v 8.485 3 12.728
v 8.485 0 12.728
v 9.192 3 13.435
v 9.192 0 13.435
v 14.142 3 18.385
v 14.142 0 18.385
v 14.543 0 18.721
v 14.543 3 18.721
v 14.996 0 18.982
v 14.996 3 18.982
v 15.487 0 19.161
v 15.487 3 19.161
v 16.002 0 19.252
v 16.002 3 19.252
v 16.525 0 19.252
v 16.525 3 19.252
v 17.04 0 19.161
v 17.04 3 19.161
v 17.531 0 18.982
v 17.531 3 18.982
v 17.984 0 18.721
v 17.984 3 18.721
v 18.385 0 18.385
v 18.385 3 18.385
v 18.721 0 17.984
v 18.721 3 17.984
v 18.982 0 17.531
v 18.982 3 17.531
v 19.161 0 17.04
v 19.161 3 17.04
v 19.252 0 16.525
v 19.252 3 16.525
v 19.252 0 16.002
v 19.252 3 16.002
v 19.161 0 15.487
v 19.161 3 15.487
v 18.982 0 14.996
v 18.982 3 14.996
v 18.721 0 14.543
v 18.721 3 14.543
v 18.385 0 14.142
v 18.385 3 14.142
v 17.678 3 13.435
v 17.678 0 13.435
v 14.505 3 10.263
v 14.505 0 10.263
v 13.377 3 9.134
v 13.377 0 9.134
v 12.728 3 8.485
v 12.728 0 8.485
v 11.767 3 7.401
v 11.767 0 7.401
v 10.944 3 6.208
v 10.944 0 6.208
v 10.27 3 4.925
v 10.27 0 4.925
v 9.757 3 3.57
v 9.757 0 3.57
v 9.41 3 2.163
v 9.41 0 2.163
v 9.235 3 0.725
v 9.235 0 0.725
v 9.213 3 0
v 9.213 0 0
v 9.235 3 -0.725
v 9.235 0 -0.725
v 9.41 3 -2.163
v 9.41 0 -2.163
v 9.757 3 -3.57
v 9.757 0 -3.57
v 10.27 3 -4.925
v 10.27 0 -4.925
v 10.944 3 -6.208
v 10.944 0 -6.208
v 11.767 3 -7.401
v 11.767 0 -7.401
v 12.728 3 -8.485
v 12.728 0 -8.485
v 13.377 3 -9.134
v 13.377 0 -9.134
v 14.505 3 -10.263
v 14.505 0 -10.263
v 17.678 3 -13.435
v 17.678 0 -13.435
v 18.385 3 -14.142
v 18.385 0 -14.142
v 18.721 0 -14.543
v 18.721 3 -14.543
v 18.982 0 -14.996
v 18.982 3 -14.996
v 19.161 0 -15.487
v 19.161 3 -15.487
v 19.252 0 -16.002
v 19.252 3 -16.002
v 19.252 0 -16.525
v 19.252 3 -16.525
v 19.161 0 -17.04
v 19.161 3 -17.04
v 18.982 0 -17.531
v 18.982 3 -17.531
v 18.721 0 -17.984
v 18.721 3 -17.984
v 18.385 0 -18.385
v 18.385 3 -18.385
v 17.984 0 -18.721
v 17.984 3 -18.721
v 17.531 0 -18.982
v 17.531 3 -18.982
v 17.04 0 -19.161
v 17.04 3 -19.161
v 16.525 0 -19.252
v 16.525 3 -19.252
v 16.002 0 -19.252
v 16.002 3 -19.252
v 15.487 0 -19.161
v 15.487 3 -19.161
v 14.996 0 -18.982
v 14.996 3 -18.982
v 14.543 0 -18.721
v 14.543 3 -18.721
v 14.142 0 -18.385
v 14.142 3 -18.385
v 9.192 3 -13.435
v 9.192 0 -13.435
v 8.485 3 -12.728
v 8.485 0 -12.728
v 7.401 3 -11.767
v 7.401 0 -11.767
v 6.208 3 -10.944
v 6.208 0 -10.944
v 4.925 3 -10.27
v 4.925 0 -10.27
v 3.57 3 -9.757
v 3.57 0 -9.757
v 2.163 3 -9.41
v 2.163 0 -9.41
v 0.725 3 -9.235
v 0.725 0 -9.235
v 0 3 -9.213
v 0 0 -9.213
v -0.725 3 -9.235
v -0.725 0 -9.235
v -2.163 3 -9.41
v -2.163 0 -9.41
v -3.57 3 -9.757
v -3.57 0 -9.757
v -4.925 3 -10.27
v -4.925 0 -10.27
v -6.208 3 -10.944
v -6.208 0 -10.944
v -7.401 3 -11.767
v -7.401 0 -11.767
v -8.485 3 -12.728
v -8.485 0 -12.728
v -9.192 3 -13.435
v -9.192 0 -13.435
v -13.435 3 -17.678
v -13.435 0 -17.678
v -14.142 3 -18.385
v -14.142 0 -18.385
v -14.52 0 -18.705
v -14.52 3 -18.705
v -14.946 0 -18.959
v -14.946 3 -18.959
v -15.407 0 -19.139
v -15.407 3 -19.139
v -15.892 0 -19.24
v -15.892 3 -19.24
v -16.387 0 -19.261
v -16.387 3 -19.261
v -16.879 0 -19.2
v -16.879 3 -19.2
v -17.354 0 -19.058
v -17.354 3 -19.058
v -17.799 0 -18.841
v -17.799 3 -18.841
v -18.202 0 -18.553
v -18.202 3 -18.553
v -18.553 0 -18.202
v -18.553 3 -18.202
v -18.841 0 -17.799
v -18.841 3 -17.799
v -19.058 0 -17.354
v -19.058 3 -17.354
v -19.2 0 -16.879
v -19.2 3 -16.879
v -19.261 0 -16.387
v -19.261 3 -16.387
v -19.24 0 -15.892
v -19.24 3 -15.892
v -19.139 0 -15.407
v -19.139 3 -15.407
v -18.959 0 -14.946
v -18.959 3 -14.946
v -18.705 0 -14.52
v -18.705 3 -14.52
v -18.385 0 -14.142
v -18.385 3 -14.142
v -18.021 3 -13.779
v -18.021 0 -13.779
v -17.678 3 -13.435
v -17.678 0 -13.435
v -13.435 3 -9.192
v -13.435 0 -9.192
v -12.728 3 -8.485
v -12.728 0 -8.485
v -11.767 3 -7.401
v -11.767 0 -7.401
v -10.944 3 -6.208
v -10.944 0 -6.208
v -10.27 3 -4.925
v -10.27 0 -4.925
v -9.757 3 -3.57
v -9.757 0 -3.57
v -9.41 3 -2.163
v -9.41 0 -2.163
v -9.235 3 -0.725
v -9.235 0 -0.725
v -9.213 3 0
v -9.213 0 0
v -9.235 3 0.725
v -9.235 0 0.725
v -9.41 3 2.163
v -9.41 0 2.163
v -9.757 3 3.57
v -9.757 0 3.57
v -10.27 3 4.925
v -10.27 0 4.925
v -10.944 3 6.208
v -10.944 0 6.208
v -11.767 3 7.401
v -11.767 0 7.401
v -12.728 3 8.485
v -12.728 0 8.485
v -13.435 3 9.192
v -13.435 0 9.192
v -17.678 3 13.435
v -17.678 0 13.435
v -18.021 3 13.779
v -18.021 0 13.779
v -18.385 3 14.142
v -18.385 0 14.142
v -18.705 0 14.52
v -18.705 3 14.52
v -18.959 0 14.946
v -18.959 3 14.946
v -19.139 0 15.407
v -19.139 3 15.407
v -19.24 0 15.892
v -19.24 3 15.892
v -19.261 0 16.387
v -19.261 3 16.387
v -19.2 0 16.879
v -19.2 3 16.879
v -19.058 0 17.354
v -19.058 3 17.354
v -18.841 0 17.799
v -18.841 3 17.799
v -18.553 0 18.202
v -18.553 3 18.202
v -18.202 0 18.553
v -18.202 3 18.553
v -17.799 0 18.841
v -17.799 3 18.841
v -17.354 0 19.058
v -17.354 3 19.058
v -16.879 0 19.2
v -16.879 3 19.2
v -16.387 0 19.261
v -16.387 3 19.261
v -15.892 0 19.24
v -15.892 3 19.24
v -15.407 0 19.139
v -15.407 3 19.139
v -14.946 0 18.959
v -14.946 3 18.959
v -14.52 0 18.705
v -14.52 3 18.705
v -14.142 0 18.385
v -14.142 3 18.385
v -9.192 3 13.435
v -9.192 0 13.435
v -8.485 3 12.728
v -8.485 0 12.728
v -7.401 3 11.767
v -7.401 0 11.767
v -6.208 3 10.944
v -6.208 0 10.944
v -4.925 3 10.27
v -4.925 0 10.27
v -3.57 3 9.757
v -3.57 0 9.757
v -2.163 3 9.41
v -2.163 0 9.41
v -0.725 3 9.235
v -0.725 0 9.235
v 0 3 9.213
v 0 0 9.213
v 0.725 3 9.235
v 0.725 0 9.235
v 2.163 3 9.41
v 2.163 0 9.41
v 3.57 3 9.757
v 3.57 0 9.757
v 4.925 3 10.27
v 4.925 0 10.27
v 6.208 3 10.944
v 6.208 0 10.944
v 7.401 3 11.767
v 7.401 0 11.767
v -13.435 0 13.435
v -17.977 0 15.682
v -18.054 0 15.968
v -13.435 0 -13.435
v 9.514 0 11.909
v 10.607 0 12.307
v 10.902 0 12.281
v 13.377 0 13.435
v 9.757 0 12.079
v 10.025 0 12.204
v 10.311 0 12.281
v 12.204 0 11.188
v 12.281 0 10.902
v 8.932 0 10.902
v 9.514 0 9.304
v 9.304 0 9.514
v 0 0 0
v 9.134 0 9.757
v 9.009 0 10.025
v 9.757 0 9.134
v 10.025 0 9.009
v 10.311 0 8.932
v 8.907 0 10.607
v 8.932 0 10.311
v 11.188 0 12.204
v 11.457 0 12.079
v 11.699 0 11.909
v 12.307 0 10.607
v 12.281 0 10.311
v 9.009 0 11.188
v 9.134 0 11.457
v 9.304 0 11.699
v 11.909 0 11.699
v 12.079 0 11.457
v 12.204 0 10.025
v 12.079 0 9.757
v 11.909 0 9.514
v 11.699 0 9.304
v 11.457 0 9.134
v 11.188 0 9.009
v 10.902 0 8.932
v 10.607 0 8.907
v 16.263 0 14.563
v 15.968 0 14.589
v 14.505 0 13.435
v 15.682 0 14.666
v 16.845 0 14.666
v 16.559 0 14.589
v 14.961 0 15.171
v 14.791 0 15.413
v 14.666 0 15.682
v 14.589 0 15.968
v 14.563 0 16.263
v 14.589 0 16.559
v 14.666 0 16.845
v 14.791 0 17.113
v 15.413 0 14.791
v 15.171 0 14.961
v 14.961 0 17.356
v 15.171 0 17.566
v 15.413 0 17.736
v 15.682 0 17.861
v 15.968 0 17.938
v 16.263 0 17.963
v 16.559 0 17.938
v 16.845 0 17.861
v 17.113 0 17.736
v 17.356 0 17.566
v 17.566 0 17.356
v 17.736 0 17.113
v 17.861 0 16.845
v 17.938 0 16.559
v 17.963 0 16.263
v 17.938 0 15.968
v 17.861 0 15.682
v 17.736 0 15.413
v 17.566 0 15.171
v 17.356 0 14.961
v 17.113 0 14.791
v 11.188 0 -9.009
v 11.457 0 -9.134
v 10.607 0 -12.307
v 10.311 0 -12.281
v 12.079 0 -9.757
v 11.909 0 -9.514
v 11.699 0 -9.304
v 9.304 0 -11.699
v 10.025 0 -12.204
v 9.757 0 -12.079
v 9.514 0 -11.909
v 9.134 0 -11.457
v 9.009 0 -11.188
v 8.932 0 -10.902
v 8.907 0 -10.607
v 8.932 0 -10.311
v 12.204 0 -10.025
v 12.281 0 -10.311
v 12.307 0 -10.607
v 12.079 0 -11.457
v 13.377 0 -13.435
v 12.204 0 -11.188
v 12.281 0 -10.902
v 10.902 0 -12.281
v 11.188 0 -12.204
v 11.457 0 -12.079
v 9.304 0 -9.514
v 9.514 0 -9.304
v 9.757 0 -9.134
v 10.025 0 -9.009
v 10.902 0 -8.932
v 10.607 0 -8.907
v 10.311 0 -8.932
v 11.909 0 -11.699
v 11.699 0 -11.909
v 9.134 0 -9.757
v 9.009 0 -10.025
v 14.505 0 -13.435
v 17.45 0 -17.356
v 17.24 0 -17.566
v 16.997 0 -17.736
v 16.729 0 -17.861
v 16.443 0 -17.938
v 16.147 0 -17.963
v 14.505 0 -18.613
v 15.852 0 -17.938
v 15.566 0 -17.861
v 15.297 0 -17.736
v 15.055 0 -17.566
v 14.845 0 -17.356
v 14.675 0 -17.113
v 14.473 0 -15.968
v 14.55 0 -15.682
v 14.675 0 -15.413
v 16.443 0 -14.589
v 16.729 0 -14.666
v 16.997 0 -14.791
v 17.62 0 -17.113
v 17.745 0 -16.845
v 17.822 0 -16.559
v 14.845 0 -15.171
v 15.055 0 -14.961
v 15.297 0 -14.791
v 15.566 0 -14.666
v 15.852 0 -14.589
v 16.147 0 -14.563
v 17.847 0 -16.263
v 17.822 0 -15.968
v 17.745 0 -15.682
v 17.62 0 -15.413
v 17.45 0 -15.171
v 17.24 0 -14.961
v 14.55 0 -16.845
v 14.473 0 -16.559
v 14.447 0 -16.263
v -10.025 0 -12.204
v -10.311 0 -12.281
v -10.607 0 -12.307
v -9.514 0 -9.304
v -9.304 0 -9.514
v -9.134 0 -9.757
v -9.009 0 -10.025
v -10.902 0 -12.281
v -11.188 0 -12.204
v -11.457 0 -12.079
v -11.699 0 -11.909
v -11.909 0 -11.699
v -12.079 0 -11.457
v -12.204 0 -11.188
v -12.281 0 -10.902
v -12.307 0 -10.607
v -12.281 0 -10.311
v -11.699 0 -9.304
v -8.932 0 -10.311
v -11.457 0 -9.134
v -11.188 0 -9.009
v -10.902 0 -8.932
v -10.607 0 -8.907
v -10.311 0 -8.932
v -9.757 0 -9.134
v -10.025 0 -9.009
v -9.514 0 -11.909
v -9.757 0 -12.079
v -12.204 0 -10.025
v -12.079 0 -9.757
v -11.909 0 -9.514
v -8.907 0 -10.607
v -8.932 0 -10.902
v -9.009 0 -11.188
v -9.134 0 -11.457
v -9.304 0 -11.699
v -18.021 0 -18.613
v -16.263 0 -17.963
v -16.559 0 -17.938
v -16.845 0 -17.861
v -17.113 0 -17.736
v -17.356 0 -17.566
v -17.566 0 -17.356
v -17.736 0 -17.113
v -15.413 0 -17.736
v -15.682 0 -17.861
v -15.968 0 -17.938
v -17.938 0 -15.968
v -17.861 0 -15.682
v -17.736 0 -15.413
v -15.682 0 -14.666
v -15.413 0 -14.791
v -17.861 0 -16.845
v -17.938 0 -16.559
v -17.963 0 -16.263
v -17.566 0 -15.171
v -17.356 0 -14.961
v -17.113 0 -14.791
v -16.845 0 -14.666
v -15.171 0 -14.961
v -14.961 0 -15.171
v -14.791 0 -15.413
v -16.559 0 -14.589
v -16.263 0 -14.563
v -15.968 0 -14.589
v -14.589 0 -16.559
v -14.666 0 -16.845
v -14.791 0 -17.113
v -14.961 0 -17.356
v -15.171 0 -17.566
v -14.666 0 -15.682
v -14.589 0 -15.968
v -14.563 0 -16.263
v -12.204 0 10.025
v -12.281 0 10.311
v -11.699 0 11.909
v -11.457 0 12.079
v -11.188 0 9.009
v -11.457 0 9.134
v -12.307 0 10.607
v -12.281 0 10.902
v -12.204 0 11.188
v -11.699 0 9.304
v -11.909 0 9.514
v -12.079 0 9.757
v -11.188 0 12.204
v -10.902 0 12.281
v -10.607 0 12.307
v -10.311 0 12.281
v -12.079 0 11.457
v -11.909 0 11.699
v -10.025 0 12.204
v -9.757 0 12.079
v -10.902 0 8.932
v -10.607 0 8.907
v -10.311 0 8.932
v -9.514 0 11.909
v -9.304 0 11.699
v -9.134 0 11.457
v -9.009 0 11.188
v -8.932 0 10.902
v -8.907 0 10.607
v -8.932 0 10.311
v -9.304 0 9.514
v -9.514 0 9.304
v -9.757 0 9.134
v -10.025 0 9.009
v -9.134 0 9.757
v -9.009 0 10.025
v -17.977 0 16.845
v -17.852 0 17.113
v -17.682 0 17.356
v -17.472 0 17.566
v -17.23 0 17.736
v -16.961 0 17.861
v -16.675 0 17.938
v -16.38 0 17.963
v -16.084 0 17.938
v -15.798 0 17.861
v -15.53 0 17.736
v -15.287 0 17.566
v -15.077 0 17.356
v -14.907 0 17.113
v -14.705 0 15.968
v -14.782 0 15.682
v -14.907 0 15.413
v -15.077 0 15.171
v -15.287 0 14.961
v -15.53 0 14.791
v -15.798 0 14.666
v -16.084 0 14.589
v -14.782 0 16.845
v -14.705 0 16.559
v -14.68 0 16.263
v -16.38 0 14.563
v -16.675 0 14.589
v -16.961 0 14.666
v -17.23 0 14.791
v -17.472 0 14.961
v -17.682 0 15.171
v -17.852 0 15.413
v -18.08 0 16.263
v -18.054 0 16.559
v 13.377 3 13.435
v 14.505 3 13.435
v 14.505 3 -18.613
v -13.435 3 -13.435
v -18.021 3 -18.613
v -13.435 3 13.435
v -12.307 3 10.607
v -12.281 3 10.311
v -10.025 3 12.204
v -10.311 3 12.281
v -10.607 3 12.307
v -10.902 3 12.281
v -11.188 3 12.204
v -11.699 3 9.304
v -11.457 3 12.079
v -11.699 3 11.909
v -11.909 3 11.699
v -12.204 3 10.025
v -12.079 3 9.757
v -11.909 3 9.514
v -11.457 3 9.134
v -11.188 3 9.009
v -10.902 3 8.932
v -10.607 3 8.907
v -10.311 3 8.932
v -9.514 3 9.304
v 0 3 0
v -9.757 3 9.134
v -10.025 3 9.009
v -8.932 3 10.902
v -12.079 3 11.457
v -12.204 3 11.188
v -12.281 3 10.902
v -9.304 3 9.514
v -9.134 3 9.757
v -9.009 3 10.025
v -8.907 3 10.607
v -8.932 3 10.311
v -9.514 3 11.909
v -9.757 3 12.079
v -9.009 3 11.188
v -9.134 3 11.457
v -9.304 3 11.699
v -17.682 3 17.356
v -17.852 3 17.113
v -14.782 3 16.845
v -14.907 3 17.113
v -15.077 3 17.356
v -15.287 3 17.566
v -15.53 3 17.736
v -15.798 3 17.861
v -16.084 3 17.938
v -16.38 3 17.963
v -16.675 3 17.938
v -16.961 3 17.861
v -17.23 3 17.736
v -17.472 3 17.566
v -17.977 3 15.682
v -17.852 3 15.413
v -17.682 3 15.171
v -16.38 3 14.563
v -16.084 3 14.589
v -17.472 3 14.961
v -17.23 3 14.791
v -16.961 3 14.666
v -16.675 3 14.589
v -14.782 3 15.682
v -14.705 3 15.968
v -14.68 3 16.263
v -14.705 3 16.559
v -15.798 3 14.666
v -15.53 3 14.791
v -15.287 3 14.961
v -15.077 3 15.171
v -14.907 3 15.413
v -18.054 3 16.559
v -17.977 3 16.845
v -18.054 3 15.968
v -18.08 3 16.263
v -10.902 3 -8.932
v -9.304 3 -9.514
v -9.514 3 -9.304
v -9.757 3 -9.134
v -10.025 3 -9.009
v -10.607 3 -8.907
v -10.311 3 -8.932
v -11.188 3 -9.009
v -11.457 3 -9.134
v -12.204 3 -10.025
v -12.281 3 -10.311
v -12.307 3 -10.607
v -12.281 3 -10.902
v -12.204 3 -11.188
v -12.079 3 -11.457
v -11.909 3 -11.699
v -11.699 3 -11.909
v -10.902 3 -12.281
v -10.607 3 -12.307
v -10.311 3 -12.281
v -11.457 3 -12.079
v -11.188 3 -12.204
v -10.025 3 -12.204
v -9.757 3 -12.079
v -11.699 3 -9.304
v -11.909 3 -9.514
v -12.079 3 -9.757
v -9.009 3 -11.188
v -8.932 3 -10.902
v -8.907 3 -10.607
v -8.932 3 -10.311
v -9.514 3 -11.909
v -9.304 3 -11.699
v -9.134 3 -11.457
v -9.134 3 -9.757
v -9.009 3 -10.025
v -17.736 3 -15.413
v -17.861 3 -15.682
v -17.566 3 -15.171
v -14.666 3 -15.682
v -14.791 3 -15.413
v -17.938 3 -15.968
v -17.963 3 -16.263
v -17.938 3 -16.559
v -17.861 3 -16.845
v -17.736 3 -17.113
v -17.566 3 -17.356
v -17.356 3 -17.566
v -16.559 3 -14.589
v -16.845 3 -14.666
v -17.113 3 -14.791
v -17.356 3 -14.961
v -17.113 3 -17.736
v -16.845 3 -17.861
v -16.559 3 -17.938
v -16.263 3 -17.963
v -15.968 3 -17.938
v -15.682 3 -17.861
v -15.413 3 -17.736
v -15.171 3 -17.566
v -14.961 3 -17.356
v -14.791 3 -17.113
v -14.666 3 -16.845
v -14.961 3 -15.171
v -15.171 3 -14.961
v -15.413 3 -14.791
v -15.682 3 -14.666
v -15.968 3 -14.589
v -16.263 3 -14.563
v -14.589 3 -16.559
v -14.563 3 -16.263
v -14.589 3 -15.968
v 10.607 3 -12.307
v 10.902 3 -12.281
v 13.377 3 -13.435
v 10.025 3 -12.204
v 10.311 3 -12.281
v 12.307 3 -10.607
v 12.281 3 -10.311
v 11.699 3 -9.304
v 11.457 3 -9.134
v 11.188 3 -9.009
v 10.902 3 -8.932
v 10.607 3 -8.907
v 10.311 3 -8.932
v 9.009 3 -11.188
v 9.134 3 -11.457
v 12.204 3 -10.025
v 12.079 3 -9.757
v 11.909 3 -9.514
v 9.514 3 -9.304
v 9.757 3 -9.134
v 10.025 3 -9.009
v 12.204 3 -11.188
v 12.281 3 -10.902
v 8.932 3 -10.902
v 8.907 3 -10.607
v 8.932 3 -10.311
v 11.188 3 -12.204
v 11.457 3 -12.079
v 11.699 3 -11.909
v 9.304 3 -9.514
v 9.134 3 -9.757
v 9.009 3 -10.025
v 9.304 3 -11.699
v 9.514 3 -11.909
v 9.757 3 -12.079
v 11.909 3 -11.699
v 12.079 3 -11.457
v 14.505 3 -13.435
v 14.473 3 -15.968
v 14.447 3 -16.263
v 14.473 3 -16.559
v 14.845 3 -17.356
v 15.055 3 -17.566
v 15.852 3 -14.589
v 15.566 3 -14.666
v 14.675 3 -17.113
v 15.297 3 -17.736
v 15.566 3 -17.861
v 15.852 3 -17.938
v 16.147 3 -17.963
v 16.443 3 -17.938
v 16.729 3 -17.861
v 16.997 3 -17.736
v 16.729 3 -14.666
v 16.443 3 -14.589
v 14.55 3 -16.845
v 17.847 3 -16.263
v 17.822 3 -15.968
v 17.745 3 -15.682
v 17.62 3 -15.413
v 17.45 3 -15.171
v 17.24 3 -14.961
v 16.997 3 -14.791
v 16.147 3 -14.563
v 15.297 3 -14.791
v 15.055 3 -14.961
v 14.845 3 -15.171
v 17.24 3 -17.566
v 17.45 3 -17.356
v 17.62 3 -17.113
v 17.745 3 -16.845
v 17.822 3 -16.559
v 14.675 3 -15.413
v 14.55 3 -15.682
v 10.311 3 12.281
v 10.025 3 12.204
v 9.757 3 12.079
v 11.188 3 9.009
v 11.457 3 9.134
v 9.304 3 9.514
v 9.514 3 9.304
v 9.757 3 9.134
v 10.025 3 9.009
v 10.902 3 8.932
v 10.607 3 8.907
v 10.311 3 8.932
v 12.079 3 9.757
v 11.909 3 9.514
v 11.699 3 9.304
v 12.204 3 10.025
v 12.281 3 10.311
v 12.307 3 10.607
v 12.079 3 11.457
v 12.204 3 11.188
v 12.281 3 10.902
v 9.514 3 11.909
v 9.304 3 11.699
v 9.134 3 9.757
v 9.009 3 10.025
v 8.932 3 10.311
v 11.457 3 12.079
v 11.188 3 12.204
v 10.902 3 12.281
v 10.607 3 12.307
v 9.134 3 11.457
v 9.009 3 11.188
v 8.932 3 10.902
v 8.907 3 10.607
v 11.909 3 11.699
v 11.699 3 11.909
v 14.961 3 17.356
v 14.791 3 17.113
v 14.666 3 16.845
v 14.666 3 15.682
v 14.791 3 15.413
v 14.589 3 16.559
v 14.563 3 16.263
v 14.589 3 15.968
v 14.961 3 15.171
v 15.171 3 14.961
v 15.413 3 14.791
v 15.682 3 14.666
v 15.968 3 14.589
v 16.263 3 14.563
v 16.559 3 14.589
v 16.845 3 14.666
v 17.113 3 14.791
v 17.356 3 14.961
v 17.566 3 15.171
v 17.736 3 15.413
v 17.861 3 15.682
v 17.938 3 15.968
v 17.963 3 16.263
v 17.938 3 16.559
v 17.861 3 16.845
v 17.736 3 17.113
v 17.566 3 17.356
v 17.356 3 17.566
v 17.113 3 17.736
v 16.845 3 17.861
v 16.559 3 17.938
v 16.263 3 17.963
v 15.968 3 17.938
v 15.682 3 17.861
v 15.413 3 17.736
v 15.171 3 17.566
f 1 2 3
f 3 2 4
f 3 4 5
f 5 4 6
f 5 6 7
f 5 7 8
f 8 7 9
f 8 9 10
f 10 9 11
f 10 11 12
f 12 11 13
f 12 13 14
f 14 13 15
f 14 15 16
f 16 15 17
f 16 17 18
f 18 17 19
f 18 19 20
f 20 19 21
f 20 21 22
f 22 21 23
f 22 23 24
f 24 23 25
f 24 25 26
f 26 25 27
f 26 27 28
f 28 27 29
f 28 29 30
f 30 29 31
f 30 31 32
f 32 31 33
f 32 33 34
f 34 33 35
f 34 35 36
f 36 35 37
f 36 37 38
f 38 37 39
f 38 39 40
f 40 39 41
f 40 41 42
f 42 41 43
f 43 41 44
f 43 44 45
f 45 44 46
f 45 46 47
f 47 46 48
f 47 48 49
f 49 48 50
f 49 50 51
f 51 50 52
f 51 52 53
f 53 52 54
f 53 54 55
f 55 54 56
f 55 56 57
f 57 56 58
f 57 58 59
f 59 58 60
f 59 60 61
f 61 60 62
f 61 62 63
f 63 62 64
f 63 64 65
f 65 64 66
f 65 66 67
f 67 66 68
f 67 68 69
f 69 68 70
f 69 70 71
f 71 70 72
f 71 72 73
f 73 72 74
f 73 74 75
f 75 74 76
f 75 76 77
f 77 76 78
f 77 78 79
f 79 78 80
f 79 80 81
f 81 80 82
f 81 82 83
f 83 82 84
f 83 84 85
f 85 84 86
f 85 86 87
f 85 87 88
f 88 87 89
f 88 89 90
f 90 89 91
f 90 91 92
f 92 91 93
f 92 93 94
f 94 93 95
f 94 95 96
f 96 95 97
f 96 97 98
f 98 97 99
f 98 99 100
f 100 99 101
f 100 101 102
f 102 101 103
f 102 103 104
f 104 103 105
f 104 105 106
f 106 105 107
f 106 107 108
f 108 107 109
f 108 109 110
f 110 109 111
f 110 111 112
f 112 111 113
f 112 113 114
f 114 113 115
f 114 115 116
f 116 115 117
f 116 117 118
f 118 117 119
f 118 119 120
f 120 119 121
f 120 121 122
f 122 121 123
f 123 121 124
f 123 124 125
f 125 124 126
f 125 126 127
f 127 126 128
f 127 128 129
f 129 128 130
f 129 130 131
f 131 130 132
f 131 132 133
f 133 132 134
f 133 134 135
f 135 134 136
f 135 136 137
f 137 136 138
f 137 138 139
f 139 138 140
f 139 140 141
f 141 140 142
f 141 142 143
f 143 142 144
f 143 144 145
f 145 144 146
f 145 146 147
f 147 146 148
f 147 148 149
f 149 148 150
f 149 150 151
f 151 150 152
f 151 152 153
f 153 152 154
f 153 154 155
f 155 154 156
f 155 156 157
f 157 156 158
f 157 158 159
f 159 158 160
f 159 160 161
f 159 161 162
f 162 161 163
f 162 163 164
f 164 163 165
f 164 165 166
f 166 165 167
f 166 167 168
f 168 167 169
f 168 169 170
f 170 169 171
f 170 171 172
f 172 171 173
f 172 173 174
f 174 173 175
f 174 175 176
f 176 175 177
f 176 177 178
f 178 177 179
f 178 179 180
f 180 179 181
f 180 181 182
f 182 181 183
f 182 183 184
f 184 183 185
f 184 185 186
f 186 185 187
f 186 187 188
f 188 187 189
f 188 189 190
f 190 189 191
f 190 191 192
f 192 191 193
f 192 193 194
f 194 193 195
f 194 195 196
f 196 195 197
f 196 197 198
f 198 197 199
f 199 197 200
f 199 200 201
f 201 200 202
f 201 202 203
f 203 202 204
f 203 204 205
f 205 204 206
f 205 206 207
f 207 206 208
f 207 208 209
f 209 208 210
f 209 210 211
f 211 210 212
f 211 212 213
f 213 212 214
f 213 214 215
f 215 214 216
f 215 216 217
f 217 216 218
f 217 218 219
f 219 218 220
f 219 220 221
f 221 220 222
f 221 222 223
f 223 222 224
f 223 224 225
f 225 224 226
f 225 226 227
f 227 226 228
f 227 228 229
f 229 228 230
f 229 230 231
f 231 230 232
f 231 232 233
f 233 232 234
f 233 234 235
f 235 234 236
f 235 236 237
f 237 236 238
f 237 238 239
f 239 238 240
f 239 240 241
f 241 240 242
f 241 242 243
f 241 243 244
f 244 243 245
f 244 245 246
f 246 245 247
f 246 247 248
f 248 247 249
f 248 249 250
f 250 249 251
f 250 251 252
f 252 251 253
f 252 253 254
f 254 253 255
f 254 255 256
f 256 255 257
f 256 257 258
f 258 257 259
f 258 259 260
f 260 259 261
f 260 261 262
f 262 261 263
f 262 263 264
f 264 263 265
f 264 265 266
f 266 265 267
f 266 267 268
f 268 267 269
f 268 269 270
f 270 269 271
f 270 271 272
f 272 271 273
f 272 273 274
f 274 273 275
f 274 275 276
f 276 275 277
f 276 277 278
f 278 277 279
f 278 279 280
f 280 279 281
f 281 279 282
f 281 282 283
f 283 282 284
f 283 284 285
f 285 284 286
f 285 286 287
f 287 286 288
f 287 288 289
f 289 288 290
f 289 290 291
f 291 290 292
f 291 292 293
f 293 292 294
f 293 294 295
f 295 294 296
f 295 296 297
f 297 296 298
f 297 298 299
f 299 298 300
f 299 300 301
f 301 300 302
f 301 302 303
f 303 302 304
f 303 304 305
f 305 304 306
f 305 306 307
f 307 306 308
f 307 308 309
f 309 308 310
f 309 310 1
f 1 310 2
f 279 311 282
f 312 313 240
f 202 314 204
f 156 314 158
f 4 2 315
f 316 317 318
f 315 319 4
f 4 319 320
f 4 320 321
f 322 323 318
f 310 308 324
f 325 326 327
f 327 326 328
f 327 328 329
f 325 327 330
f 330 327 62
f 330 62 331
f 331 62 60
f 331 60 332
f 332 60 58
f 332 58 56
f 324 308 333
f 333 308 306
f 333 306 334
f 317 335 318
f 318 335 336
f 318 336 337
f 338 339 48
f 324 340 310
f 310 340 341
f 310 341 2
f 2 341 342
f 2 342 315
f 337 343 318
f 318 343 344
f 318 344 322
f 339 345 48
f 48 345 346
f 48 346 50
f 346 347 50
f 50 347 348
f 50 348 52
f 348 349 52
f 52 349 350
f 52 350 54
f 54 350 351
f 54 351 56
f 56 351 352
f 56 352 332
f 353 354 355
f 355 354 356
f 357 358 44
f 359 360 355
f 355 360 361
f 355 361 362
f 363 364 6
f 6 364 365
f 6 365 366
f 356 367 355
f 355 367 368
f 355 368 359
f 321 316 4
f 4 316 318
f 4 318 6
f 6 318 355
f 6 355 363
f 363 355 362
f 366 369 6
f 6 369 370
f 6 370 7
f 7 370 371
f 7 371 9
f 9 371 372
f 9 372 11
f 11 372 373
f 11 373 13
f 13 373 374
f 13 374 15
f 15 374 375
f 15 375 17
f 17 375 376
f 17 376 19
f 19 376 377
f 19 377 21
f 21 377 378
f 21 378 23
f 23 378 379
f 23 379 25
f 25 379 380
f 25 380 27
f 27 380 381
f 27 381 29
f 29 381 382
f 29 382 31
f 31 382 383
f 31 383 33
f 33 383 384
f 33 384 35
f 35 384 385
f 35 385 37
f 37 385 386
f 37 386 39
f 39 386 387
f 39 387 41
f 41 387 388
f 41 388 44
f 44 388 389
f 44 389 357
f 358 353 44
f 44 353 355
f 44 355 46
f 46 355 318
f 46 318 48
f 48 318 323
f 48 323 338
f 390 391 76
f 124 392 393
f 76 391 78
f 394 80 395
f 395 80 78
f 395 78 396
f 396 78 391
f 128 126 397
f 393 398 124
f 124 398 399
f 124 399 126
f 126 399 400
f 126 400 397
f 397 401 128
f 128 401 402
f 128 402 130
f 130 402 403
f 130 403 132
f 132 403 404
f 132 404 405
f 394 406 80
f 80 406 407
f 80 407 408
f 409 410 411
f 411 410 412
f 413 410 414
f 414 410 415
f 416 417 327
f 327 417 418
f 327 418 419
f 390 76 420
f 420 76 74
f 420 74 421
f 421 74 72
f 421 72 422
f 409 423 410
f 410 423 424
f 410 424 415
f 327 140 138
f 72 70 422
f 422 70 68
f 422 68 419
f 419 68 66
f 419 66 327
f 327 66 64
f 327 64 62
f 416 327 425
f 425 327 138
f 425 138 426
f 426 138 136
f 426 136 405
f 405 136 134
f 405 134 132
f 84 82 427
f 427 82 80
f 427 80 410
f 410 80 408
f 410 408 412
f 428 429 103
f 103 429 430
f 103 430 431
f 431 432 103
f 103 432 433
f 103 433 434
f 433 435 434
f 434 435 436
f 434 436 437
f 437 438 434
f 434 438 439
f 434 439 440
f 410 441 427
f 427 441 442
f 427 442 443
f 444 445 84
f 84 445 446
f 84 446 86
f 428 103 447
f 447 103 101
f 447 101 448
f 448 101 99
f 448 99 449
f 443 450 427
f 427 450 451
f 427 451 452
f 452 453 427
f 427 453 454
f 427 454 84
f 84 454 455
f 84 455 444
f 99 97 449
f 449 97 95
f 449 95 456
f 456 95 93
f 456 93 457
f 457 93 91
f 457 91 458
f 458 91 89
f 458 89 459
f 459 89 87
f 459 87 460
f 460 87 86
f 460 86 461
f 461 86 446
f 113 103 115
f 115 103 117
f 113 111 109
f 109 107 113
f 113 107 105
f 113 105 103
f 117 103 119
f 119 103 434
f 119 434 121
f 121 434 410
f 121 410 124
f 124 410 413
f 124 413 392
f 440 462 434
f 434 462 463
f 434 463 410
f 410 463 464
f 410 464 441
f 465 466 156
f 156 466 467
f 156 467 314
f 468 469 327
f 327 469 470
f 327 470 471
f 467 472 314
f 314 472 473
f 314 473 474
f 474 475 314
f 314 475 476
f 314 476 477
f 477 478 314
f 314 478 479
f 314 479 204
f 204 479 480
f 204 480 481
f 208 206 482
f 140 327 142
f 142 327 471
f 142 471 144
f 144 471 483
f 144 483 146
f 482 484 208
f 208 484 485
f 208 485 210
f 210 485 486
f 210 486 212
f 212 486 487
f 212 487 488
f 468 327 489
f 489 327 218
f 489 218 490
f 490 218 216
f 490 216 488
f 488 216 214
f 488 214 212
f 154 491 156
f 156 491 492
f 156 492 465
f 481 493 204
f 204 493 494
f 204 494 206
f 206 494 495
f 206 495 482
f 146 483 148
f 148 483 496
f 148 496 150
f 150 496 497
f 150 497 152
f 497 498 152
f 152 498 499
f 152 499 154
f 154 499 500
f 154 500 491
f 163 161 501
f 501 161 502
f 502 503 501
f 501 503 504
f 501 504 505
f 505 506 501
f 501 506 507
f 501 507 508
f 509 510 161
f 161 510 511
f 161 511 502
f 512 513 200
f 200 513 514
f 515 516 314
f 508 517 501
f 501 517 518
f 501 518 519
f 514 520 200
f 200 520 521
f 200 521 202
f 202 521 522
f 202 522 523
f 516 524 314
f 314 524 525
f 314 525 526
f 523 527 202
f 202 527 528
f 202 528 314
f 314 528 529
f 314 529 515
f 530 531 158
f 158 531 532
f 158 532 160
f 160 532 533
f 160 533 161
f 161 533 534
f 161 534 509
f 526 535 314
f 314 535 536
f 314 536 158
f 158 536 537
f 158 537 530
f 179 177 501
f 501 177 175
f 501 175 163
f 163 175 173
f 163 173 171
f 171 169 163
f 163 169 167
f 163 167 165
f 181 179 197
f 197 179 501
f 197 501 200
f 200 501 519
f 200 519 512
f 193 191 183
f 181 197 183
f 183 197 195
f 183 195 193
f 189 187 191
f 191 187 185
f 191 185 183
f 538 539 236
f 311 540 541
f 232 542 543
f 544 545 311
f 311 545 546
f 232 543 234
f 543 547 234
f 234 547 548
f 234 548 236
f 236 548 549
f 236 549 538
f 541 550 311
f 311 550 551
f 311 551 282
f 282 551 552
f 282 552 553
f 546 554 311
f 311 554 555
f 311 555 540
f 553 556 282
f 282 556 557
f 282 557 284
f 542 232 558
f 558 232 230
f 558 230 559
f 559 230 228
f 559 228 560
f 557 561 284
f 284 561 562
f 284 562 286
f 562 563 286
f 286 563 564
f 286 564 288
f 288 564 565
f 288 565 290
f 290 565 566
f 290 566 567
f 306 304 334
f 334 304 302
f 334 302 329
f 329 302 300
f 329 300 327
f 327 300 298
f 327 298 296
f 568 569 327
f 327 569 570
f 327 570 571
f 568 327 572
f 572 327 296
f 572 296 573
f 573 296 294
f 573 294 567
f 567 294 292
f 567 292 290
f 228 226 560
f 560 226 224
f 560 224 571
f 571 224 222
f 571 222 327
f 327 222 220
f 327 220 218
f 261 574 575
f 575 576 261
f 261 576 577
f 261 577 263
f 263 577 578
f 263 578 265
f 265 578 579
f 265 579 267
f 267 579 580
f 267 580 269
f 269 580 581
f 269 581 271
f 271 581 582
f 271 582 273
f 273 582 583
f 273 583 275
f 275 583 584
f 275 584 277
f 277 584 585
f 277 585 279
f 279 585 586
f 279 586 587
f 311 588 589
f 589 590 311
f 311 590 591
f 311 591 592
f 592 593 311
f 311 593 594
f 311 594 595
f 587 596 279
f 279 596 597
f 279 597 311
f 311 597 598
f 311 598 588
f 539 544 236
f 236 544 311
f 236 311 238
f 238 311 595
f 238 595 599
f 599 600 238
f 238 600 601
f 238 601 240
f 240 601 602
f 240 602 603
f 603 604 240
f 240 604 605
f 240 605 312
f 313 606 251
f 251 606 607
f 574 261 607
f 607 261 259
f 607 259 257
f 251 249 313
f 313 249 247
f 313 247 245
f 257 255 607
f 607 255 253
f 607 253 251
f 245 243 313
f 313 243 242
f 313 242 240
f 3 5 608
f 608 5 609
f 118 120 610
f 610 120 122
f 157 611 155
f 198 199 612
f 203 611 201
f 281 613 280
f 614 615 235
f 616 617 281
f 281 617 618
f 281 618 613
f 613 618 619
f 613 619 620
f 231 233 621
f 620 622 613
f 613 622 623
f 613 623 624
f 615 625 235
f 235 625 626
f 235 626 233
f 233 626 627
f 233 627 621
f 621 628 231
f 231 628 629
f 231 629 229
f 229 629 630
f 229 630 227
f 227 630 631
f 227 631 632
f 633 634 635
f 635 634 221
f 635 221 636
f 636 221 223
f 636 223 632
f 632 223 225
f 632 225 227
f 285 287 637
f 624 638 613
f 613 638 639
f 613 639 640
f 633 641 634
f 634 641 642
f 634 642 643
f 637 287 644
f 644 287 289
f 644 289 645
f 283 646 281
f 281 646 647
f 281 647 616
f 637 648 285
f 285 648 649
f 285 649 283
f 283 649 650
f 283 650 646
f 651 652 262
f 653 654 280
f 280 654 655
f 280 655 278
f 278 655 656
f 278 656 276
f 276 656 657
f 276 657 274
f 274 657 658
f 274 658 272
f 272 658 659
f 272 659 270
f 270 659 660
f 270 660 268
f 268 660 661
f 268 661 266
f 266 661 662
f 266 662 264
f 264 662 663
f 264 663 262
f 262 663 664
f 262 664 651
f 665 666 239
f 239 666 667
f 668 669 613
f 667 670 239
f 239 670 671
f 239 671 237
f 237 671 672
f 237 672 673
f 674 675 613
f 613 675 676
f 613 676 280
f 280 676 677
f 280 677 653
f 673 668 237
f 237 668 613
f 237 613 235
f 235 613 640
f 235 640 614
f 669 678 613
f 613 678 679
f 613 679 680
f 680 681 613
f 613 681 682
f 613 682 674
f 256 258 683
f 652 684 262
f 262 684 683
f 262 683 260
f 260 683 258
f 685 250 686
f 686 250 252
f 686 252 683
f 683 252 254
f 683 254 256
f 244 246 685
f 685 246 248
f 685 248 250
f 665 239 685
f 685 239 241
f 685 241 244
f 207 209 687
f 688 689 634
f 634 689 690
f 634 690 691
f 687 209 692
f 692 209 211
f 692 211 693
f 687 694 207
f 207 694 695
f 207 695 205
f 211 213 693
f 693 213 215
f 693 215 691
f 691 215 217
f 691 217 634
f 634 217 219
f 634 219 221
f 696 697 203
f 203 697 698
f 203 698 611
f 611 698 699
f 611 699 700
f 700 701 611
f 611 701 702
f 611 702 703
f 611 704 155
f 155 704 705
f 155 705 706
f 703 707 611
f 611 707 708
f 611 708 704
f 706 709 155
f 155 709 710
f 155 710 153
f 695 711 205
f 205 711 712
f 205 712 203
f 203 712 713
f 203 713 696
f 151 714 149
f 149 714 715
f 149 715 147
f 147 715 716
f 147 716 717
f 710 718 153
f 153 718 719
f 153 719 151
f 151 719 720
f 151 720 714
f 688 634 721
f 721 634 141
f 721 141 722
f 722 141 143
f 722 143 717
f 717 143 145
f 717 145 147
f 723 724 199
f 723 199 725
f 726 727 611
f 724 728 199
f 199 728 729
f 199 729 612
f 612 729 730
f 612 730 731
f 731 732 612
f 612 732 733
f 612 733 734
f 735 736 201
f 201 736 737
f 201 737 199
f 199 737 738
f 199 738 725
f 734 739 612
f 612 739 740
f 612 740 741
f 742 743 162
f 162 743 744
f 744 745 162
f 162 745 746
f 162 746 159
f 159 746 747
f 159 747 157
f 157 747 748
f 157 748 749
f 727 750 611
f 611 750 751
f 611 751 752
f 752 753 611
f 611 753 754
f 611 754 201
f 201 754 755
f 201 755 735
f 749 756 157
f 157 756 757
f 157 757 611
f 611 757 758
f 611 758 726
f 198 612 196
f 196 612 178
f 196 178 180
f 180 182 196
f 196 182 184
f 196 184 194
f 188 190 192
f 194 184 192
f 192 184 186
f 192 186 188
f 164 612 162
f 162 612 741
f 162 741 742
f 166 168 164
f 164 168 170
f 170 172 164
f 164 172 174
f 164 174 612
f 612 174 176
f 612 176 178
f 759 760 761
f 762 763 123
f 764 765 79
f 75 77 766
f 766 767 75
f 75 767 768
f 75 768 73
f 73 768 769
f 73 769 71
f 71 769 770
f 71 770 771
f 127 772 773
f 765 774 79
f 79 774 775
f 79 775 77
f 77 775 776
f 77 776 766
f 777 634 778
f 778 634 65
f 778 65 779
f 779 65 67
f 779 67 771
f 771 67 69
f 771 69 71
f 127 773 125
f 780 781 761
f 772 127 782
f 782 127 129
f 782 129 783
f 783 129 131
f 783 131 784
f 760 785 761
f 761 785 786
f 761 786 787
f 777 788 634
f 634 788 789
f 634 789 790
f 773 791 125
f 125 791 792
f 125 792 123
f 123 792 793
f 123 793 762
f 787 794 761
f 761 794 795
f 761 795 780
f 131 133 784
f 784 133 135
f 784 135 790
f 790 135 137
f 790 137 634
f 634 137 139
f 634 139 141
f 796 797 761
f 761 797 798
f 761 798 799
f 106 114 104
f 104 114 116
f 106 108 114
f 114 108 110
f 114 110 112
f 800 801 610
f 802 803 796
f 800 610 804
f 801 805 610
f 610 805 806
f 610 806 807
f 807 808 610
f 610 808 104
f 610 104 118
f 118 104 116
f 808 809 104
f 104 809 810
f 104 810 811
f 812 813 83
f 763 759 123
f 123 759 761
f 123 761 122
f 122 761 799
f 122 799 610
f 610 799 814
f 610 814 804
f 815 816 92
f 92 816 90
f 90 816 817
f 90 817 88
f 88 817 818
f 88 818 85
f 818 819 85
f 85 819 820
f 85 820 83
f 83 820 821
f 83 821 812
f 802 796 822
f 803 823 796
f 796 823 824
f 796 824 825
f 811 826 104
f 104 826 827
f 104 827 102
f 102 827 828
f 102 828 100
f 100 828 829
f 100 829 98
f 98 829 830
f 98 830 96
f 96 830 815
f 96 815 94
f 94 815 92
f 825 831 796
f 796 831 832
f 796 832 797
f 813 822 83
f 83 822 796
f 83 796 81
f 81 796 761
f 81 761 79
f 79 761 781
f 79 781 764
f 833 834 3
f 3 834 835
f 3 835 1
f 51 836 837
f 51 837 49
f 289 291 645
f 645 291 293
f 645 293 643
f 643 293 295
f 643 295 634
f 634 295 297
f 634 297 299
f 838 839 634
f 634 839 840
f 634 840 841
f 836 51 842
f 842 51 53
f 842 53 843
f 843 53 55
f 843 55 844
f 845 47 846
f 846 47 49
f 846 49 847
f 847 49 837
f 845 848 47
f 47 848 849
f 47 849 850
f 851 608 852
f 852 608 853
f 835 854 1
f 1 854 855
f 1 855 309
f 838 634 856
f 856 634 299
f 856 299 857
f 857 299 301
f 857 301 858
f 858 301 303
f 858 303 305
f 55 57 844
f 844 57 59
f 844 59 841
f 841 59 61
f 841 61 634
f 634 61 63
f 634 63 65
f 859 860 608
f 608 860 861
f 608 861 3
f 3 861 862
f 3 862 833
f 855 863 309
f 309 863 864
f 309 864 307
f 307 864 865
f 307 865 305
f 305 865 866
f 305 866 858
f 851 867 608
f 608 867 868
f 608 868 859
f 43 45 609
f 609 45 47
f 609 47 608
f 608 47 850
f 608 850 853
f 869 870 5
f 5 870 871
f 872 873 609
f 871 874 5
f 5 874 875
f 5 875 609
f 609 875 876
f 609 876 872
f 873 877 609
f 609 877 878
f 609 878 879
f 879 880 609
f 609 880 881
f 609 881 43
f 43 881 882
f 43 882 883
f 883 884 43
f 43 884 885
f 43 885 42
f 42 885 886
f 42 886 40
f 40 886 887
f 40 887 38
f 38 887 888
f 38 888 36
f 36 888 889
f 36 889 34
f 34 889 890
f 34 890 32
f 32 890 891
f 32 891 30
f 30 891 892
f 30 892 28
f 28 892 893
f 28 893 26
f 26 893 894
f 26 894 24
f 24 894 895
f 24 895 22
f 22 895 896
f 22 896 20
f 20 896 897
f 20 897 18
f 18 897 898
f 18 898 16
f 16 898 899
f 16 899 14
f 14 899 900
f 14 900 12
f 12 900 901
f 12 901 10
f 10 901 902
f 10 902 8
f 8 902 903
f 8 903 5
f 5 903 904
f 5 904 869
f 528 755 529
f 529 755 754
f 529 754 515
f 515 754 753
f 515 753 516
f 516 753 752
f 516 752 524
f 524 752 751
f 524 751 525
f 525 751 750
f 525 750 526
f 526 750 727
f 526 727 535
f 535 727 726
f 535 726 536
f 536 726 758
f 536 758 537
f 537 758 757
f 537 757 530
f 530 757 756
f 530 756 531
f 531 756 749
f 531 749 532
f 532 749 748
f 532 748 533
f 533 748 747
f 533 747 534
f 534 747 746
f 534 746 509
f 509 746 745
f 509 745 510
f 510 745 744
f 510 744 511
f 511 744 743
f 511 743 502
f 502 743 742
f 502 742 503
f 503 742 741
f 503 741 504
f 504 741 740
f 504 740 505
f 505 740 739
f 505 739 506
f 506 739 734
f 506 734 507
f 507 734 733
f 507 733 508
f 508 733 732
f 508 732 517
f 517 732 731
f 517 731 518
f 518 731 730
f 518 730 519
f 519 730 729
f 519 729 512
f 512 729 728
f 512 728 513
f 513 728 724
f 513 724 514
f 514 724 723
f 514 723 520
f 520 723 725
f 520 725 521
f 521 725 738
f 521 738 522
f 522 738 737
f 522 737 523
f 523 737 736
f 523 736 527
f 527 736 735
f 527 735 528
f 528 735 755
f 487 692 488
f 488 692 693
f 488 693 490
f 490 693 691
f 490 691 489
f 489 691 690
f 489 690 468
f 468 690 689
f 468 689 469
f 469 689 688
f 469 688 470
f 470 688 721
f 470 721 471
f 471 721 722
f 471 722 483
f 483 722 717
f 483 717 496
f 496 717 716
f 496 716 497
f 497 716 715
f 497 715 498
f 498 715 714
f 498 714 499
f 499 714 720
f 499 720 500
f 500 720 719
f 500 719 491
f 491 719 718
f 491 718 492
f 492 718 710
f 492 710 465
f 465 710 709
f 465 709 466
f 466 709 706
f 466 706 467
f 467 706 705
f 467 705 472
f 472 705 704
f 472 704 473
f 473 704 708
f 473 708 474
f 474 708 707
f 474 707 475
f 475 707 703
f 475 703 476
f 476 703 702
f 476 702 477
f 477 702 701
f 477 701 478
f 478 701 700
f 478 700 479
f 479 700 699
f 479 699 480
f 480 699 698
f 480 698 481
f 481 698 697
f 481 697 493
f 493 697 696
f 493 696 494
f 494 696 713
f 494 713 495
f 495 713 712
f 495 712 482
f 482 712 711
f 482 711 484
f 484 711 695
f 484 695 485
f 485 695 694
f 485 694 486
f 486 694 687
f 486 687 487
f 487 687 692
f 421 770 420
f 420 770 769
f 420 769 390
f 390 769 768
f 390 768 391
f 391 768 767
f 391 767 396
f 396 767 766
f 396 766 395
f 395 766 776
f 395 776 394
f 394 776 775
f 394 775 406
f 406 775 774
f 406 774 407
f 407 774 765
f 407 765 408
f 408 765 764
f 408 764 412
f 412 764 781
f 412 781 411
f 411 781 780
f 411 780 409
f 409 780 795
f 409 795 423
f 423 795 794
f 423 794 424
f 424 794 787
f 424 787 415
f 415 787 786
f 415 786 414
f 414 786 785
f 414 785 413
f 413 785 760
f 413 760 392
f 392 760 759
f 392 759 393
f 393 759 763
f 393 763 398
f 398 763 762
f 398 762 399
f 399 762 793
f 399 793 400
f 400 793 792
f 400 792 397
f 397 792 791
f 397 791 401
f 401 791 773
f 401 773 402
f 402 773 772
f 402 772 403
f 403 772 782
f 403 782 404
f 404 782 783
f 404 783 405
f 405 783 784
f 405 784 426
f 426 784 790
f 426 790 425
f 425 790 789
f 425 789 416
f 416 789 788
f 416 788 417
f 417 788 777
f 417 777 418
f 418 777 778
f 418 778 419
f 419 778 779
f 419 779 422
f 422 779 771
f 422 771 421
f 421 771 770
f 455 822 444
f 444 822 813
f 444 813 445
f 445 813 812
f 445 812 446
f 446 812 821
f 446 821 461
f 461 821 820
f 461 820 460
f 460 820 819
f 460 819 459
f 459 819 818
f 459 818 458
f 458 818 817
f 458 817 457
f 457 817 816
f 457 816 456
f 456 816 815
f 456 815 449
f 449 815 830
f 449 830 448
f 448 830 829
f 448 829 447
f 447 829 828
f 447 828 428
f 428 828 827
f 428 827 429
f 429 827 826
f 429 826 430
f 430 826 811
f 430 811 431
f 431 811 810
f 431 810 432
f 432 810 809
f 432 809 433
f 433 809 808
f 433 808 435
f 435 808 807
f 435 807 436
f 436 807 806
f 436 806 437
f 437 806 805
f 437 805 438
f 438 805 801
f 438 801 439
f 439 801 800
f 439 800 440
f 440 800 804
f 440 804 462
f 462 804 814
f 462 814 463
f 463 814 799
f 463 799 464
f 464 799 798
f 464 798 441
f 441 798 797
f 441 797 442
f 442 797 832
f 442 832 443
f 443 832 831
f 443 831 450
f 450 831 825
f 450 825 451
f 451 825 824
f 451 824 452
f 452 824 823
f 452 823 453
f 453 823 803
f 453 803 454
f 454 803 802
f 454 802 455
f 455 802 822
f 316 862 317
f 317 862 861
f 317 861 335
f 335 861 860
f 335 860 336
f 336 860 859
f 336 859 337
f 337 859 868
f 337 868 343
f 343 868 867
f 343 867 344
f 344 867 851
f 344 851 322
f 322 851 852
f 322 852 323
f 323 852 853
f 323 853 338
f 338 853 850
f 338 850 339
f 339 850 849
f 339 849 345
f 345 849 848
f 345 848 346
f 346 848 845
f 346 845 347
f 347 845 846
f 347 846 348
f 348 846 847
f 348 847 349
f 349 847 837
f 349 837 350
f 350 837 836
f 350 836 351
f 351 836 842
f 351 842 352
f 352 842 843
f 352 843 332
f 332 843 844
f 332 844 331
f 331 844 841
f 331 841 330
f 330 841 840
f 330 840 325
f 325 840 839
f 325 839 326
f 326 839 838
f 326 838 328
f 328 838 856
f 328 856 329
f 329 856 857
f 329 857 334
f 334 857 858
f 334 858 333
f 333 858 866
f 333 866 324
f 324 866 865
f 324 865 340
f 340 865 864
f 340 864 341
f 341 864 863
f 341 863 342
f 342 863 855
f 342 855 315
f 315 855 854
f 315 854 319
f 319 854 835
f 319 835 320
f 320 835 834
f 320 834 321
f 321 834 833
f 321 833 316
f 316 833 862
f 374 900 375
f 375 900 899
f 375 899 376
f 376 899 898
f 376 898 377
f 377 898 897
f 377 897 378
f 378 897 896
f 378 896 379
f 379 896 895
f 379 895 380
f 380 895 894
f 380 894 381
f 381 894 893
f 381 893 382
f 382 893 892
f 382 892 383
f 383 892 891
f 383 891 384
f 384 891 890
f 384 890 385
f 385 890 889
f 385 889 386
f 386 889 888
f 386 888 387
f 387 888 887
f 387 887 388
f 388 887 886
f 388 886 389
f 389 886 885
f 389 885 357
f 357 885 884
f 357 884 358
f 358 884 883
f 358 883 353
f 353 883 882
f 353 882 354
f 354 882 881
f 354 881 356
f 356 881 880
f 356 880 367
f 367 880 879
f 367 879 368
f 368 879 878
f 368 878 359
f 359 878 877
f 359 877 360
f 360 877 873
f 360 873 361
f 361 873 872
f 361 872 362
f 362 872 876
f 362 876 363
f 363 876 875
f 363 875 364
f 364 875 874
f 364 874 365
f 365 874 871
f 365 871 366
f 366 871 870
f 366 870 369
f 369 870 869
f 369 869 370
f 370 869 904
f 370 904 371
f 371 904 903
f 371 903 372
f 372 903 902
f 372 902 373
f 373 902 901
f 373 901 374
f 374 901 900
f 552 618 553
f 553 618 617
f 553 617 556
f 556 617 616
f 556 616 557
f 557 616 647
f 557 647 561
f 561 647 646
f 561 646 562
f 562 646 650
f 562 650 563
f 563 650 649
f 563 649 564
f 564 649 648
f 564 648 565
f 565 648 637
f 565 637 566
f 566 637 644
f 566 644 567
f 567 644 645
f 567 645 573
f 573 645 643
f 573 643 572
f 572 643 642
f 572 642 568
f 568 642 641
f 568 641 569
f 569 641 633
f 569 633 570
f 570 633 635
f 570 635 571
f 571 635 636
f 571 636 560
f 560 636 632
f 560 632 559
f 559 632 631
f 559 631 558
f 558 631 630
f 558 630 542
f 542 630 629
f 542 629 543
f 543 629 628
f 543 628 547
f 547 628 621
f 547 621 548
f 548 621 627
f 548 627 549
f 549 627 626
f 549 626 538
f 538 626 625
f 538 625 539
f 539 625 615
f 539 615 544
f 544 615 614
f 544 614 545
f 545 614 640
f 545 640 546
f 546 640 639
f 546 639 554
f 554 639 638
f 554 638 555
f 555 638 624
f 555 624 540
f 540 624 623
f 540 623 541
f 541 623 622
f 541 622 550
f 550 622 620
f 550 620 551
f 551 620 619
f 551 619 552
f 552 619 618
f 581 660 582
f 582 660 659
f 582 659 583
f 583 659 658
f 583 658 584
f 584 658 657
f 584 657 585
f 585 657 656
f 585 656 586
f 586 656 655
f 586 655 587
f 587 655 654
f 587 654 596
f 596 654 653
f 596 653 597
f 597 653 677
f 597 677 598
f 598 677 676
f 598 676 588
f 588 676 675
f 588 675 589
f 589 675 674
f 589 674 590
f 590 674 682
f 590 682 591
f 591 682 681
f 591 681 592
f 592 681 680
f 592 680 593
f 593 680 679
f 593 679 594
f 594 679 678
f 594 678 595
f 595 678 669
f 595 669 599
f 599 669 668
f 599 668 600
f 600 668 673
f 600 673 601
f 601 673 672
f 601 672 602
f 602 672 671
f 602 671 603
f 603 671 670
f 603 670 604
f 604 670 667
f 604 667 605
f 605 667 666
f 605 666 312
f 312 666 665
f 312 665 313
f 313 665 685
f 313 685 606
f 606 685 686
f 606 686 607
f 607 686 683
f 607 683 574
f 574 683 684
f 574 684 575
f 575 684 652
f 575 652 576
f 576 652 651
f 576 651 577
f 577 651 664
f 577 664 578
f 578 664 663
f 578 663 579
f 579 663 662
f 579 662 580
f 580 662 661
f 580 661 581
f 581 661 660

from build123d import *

# Parameters (mm, degrees)
BOSS_EXTRUDE1_DEPTH  = 3
M3_CLEARANCE_HOLE3_D = 3.4


with BuildPart() as part:
    # Sketch1 → Boss-Extrude1 (new body)
    with BuildSketch(Plane(origin=(0, 0, 0), x_dir=(1, 0, 0), z_dir=(0, 1, 0))):
        with BuildLine():
            Line((-18.384776311, 14.142135624), (-12.727922061, 8.485281374))
            ThreePointArc((-12.727922061, 8.485281374), (-9.213203436, 0), (-12.727922061, -8.485281374))
            Line((-12.727922061, -8.485281374), (-18.384776311, -14.142135624))
            ThreePointArc((-18.384776311, -14.142135624), (-18.384776311, -18.384776311), (-14.142135624, -18.384776311))
            Line((-14.142135624, -18.384776311), (-8.485281374, -12.727922061))
            ThreePointArc((-8.485281374, -12.727922061), (0, -9.213203436), (8.485281374, -12.727922061))
            Line((8.485281374, -12.727922061), (14.142135624, -18.384776311))
            ThreePointArc((14.142135624, -18.384776311), (18.384776311, -18.384776311), (18.384776311, -14.142135624))
            Line((18.384776311, -14.142135624), (12.727922061, -8.485281374))
            ThreePointArc((12.727922061, -8.485281374), (9.213203436, 0), (12.727922061, 8.485281374))
            Line((12.727922061, 8.485281374), (18.384776311, 14.142135624))
            ThreePointArc((18.384776311, 14.142135624), (18.384776311, 18.384776311), (14.142135624, 18.384776311))
            Line((14.142135624, 18.384776311), (8.485281374, 12.727922061))
            ThreePointArc((8.485281374, 12.727922061), (0, 9.213203436), (-8.485281374, 12.727922061))
            Line((-8.485281374, 12.727922061), (-14.142135624, 18.384776311))
            ThreePointArc((-14.142135624, 18.384776311), (-18.384776311, 18.384776311), (-18.384776311, 14.142135624))
        make_face()
    extrude(amount=BOSS_EXTRUDE1_DEPTH)

    # M3 Clearance Hole3 (through all)
    with Locations(Plane(origin=(0, 3, 0), x_dir=(1, 0, 0), z_dir=(0, 1, 0))):
        with Locations((-16.379512961, -16.263455967), (-10.606601718, -10.606601718), (16.263455967, -16.263455967), (10.606601718, -10.606601718), (16.147398973, 16.263455967), (10.606601718, 10.606601718), (-10.606601718, 10.606601718), (-16.263455967, 16.263455967)):
            Hole(M3_CLEARANCE_HOLE3_D / 2)


solid = part.part
